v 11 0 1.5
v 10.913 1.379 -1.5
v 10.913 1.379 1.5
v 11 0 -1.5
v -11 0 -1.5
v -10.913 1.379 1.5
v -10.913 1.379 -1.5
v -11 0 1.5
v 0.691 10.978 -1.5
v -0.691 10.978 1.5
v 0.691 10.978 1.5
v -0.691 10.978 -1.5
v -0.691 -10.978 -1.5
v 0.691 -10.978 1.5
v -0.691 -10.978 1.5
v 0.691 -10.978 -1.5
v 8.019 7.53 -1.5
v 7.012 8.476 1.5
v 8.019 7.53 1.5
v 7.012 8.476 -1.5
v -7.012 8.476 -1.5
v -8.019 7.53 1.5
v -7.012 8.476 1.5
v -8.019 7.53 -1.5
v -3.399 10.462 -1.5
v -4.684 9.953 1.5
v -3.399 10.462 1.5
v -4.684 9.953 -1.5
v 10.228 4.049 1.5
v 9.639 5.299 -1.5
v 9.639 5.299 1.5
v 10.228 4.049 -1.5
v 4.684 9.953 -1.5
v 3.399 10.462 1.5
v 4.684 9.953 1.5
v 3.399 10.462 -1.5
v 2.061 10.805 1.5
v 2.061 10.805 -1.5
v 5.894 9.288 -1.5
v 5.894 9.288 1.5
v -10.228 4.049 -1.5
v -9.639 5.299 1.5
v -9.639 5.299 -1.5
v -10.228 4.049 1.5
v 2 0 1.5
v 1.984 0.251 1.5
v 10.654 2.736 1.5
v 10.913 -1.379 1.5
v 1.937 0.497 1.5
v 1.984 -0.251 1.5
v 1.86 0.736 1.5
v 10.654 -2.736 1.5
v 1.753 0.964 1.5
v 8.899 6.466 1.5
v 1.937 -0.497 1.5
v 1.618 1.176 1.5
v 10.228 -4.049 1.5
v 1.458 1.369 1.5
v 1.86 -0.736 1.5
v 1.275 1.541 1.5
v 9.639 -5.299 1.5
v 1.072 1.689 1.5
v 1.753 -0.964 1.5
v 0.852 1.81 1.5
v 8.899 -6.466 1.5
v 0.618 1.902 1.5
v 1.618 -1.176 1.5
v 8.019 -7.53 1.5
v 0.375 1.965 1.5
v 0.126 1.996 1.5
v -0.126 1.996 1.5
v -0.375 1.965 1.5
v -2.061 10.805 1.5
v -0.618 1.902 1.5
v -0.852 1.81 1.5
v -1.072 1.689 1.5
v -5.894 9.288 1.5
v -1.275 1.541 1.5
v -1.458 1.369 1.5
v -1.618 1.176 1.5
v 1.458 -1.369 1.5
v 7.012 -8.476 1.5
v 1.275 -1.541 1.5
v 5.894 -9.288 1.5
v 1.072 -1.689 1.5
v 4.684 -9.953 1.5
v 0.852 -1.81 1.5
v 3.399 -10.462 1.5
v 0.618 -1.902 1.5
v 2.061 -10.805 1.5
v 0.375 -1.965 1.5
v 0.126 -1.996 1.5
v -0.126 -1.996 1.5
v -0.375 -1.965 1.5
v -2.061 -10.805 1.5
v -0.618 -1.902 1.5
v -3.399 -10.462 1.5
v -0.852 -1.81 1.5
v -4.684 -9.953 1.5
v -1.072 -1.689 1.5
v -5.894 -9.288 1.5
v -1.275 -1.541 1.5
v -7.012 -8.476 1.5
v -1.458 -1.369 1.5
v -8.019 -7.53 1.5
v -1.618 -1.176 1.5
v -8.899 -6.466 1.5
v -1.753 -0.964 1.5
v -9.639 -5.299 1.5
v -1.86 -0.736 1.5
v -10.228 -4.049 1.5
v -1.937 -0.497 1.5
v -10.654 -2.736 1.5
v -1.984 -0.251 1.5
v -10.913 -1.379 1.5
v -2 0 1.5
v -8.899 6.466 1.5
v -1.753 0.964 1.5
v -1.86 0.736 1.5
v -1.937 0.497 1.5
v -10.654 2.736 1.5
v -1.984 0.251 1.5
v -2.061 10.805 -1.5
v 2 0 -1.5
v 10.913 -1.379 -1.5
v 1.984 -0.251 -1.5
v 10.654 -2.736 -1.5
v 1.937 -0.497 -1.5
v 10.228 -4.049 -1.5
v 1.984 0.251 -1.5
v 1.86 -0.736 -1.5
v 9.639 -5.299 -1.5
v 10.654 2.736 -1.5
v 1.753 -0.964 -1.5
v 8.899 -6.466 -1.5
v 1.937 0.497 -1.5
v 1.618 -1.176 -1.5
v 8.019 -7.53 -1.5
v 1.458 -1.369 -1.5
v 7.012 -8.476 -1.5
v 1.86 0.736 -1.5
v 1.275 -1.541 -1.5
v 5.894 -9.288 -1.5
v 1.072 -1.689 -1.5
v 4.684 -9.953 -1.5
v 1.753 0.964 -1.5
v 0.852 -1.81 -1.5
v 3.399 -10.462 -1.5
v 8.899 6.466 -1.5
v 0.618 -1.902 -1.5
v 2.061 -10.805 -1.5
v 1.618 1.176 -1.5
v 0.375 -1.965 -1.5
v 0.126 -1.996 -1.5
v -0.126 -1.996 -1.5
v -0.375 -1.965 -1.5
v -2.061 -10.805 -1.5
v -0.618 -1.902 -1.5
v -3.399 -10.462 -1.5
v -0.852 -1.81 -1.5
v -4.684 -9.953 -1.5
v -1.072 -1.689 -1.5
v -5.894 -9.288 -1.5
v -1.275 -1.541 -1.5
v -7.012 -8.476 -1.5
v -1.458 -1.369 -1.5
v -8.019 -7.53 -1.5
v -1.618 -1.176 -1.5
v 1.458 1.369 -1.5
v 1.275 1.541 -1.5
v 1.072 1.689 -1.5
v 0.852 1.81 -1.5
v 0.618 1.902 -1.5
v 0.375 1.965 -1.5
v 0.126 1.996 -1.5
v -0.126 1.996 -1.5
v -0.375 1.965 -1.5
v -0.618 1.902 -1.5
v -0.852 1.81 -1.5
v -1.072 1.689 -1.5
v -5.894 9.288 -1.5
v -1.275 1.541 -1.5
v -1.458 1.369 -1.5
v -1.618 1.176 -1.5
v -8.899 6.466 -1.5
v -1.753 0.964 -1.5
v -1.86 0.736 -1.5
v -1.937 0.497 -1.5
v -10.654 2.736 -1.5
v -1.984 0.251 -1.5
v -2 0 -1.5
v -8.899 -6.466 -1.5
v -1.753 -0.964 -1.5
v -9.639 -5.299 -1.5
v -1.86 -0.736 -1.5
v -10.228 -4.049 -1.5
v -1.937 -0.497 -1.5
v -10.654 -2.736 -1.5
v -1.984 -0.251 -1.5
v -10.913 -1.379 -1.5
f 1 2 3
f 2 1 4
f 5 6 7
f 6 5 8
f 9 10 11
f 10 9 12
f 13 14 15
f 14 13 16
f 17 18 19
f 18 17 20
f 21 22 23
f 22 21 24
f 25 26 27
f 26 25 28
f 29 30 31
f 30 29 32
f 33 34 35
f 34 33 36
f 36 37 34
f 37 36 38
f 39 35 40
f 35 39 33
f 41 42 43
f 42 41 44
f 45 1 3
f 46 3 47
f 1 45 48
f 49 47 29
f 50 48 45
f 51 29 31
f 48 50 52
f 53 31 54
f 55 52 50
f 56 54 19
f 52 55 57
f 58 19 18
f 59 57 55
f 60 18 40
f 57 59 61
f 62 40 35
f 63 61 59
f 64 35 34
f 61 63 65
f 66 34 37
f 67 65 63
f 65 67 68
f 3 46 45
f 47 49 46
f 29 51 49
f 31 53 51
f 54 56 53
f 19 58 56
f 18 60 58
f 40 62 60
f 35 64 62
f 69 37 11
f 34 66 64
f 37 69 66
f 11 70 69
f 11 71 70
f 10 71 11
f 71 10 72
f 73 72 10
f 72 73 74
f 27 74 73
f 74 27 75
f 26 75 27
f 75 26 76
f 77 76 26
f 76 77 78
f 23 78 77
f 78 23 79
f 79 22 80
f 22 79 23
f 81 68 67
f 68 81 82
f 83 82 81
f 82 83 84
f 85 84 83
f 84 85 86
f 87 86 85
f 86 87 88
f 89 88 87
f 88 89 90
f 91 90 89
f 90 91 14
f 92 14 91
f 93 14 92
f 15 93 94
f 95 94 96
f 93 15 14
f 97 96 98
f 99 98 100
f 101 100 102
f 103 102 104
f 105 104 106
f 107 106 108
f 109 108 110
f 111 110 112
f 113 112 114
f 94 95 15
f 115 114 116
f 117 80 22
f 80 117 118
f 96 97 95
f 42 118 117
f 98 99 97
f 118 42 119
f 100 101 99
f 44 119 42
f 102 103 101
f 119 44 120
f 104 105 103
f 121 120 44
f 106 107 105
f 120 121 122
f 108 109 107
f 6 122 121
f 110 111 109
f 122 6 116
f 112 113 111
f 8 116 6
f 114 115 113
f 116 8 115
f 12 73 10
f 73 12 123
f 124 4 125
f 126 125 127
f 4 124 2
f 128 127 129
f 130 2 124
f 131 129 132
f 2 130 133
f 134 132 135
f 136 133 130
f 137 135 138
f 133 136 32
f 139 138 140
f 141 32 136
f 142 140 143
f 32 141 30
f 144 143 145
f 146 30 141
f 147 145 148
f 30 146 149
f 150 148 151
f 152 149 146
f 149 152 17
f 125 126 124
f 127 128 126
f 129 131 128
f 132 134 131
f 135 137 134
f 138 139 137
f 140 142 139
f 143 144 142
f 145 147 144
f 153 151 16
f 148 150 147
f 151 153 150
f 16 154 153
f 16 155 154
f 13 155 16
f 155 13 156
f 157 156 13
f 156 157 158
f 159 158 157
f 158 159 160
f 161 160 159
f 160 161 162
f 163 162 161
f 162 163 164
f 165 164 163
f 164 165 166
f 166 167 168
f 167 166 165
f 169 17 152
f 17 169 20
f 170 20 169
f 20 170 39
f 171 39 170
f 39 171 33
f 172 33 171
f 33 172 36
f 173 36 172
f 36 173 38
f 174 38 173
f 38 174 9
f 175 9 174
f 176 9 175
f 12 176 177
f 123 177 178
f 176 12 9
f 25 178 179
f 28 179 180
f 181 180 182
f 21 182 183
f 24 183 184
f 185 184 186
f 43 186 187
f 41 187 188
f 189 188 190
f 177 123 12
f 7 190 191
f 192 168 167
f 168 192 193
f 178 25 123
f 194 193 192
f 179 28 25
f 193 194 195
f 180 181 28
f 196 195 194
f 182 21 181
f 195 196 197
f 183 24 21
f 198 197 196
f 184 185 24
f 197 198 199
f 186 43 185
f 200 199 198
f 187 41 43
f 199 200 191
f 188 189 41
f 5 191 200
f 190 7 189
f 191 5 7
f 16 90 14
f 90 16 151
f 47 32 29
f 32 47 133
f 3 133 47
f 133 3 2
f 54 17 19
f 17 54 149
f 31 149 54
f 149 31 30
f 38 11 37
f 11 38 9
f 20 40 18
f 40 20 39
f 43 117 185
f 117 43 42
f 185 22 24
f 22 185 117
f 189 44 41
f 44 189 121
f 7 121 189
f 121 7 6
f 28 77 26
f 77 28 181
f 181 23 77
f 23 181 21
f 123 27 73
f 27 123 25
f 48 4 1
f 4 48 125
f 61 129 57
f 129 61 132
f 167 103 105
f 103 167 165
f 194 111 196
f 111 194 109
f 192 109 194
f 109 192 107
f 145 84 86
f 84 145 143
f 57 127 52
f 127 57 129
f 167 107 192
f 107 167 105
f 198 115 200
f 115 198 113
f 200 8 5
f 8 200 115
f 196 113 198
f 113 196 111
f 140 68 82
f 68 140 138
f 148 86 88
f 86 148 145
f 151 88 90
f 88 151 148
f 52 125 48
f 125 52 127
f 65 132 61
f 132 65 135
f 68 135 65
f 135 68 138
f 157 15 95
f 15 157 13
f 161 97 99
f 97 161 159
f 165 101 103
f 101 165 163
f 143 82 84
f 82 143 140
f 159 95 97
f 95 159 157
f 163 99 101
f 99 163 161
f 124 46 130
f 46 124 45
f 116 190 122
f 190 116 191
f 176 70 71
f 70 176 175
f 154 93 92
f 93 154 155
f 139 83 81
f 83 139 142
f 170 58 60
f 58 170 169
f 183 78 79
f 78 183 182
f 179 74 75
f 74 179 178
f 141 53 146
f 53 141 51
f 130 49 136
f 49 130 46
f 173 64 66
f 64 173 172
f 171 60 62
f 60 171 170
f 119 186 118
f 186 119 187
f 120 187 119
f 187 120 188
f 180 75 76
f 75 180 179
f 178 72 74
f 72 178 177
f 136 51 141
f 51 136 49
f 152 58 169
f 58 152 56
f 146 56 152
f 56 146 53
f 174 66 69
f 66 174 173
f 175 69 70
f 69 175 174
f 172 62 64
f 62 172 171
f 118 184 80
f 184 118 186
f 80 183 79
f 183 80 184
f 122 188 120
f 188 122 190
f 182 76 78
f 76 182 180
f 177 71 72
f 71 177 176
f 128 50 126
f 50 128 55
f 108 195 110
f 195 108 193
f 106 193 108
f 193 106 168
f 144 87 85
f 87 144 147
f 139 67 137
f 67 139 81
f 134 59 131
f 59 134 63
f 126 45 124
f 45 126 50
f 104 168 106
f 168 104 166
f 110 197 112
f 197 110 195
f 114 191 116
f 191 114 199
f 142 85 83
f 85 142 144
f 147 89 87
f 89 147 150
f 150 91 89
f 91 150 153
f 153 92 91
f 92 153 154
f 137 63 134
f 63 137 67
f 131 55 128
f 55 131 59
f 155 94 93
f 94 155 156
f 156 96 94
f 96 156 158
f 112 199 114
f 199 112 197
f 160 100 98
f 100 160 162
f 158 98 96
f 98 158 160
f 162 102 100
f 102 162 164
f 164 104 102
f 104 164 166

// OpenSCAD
$fn = 50;


difference() {
	union() {
		translate(v = [0, 0, -1.5000000000]) {
			cylinder(h = 3, r = 11.0000000000);
		}
	}
	union() {
		translate(v = [0, 0, -100.0000000000]) {
			cylinder(h = 200, r = 2);
		}
	}
}
